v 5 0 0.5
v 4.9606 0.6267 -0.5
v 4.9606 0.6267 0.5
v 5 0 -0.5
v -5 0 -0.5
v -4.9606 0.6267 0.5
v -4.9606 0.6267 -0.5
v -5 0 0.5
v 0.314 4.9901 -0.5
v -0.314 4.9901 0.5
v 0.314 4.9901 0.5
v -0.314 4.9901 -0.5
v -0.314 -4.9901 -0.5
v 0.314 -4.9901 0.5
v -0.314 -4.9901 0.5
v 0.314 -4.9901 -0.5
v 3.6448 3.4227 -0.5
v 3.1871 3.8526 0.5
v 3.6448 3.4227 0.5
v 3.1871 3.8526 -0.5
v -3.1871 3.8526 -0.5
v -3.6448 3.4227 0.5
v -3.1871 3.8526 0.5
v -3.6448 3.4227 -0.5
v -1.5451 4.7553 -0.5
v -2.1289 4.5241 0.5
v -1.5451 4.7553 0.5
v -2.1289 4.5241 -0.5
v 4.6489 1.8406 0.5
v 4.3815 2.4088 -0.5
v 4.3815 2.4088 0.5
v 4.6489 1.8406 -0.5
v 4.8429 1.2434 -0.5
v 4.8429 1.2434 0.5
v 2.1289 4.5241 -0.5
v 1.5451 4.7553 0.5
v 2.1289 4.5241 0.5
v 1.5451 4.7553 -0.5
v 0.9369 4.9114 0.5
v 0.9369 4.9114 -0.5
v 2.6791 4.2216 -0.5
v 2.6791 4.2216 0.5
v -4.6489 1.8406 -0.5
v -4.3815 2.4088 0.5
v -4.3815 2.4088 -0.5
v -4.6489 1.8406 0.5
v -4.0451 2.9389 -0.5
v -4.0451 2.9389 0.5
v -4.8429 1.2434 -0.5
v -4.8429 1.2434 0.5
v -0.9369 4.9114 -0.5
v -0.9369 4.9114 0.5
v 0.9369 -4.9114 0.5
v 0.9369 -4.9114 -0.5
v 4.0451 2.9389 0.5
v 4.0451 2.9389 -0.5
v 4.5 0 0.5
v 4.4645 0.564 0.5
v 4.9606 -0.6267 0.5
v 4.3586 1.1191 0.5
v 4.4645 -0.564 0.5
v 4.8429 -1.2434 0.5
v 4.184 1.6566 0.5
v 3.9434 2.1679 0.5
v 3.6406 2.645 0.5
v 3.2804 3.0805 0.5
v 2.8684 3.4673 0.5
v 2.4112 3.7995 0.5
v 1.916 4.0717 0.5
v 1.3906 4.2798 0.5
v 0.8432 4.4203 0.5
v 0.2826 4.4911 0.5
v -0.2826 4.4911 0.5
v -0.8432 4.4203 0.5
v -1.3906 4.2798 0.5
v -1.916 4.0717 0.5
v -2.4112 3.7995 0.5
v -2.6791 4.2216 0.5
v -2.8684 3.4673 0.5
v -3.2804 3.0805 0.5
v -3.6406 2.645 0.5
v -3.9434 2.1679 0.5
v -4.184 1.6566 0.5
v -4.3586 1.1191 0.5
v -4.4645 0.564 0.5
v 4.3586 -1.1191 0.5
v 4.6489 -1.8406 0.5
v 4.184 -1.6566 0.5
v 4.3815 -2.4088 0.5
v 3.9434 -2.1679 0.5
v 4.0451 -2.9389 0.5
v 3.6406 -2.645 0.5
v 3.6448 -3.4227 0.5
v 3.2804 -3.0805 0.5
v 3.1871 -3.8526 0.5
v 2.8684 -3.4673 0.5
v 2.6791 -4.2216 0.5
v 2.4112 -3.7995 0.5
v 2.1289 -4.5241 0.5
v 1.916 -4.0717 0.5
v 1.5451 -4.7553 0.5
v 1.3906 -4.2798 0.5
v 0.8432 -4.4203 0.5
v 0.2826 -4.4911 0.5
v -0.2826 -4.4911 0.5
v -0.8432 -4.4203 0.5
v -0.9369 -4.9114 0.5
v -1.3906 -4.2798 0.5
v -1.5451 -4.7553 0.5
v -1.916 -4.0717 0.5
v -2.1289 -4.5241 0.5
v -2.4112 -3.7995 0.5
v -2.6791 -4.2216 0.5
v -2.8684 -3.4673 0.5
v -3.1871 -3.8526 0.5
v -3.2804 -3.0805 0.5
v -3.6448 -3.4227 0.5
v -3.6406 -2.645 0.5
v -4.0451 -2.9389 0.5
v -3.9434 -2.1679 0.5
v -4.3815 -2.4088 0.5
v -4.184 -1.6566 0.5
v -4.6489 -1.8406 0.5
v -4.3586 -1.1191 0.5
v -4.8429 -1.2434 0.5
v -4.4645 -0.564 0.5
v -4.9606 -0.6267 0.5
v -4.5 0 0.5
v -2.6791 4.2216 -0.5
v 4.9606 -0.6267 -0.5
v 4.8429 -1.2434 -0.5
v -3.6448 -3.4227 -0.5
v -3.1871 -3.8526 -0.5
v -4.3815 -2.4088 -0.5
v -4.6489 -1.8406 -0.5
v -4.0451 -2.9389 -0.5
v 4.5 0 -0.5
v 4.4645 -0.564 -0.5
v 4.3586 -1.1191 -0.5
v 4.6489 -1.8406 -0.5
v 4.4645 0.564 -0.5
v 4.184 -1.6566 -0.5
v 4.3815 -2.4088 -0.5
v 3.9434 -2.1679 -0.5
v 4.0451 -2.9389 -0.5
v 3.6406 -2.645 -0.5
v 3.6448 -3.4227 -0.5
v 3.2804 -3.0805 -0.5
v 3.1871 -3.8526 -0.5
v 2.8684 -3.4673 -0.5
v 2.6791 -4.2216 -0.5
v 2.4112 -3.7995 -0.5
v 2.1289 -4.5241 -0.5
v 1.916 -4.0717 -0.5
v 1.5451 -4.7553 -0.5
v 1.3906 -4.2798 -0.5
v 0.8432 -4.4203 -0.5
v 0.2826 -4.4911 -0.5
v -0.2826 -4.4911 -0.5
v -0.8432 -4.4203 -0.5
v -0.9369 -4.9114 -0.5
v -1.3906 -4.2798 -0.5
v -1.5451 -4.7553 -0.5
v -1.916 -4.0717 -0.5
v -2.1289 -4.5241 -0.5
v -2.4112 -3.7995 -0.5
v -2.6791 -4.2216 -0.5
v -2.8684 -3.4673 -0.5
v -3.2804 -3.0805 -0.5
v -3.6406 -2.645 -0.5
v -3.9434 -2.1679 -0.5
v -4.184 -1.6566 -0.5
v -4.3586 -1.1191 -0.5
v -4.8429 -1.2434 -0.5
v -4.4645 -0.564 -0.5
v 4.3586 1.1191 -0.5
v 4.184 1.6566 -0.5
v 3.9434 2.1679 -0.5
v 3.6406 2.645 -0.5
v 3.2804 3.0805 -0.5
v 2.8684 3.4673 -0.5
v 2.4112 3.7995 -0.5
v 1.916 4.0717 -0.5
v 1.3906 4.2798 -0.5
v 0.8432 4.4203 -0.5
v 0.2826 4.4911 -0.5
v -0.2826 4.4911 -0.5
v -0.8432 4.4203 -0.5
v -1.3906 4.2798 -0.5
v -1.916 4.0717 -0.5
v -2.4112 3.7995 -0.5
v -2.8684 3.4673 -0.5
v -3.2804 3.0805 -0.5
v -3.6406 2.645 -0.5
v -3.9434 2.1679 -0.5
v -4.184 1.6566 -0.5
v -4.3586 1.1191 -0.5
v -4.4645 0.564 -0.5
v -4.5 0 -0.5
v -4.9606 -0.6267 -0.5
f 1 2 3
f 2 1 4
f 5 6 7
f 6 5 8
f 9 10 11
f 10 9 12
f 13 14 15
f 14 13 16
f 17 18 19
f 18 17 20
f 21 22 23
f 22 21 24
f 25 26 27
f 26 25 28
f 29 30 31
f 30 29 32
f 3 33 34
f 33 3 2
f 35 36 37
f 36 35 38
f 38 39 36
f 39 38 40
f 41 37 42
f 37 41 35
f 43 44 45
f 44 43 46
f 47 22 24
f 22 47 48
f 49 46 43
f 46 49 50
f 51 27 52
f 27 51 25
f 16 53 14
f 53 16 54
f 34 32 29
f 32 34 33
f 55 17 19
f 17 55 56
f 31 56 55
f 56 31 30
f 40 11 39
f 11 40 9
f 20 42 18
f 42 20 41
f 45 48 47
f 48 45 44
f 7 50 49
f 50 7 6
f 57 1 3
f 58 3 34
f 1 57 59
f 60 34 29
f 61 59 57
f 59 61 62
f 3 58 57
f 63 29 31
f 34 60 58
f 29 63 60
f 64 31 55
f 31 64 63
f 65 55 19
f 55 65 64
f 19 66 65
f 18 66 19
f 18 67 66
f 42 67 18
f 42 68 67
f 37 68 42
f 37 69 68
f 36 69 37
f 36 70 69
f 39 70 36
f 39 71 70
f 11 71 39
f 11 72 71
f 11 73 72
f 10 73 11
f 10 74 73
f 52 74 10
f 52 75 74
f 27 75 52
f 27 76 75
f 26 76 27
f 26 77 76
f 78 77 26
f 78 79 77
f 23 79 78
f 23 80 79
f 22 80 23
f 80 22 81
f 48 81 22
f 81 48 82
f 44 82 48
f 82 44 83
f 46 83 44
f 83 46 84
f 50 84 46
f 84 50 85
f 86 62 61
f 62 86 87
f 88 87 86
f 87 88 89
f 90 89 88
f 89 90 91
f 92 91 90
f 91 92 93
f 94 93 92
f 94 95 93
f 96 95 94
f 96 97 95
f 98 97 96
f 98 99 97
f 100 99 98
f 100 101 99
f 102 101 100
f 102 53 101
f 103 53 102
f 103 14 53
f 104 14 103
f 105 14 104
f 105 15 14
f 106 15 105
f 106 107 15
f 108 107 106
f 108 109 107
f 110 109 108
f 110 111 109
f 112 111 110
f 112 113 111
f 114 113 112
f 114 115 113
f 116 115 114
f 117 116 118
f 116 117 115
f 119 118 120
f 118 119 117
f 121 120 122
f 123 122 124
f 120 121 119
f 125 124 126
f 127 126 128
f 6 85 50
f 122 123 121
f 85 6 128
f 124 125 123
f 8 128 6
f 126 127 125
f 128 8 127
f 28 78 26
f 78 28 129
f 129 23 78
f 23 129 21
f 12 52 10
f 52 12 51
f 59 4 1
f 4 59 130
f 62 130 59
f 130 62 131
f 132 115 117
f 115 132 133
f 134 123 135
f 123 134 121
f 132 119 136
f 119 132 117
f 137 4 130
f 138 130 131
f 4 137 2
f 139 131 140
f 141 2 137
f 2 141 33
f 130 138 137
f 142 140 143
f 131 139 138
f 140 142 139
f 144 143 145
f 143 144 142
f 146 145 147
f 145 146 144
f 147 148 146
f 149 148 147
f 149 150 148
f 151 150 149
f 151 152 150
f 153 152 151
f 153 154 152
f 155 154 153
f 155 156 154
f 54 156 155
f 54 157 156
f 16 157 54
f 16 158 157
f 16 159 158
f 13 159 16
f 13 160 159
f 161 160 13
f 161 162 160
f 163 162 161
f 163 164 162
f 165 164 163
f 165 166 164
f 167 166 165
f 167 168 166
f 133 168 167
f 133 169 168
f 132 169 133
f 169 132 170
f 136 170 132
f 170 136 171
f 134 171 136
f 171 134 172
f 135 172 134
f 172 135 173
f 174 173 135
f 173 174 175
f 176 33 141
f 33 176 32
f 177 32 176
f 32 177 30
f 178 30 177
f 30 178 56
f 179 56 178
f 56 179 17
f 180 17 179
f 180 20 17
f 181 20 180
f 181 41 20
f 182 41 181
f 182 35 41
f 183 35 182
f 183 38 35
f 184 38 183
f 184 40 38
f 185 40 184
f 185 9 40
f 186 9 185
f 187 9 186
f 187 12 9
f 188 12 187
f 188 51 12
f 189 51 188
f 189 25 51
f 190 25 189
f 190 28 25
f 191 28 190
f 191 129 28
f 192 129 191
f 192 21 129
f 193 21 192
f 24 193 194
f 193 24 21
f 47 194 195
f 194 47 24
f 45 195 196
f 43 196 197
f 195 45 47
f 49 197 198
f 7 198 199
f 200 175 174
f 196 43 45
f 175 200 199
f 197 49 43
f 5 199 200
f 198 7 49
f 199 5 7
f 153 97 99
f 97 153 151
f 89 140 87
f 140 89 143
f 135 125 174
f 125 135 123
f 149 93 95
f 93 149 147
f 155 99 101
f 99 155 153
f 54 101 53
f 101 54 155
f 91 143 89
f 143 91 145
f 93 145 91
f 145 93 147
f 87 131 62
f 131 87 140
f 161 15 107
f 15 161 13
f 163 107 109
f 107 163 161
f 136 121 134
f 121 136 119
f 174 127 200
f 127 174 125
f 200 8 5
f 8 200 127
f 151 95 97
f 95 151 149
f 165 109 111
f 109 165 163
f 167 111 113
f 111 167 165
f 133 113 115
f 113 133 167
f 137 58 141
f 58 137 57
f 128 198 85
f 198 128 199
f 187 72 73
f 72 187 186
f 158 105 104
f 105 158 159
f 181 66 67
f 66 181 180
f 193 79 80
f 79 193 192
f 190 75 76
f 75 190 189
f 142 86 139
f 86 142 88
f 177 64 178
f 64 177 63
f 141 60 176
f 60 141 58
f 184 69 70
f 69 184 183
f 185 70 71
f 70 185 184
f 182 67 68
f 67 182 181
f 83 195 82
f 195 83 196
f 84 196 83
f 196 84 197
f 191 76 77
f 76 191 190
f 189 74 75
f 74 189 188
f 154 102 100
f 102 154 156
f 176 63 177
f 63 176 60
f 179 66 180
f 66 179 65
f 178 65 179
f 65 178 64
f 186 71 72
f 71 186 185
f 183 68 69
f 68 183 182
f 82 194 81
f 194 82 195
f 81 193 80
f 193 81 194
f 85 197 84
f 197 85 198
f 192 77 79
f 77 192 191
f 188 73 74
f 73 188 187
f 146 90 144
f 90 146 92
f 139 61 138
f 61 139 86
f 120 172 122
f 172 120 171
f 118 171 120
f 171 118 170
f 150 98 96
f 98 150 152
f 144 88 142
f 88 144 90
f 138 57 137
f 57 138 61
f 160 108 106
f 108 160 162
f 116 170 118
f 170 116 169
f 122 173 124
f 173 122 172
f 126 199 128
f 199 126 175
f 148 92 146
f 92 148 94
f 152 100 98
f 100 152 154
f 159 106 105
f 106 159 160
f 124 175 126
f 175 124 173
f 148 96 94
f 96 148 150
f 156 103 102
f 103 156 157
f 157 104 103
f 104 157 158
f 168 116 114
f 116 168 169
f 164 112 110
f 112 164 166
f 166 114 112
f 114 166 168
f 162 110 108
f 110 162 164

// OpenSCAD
$fn = 50;


difference() {
	union() {
		translate(v = [0, 0, -0.5000000000]) {
			cylinder(h = 1, r = 5.0000000000);
		}
	}
	union() {
		translate(v = [0, 0, -100.0000000000]) {
			cylinder(h = 200, r = 4.5000000000);
		}
	}
}
